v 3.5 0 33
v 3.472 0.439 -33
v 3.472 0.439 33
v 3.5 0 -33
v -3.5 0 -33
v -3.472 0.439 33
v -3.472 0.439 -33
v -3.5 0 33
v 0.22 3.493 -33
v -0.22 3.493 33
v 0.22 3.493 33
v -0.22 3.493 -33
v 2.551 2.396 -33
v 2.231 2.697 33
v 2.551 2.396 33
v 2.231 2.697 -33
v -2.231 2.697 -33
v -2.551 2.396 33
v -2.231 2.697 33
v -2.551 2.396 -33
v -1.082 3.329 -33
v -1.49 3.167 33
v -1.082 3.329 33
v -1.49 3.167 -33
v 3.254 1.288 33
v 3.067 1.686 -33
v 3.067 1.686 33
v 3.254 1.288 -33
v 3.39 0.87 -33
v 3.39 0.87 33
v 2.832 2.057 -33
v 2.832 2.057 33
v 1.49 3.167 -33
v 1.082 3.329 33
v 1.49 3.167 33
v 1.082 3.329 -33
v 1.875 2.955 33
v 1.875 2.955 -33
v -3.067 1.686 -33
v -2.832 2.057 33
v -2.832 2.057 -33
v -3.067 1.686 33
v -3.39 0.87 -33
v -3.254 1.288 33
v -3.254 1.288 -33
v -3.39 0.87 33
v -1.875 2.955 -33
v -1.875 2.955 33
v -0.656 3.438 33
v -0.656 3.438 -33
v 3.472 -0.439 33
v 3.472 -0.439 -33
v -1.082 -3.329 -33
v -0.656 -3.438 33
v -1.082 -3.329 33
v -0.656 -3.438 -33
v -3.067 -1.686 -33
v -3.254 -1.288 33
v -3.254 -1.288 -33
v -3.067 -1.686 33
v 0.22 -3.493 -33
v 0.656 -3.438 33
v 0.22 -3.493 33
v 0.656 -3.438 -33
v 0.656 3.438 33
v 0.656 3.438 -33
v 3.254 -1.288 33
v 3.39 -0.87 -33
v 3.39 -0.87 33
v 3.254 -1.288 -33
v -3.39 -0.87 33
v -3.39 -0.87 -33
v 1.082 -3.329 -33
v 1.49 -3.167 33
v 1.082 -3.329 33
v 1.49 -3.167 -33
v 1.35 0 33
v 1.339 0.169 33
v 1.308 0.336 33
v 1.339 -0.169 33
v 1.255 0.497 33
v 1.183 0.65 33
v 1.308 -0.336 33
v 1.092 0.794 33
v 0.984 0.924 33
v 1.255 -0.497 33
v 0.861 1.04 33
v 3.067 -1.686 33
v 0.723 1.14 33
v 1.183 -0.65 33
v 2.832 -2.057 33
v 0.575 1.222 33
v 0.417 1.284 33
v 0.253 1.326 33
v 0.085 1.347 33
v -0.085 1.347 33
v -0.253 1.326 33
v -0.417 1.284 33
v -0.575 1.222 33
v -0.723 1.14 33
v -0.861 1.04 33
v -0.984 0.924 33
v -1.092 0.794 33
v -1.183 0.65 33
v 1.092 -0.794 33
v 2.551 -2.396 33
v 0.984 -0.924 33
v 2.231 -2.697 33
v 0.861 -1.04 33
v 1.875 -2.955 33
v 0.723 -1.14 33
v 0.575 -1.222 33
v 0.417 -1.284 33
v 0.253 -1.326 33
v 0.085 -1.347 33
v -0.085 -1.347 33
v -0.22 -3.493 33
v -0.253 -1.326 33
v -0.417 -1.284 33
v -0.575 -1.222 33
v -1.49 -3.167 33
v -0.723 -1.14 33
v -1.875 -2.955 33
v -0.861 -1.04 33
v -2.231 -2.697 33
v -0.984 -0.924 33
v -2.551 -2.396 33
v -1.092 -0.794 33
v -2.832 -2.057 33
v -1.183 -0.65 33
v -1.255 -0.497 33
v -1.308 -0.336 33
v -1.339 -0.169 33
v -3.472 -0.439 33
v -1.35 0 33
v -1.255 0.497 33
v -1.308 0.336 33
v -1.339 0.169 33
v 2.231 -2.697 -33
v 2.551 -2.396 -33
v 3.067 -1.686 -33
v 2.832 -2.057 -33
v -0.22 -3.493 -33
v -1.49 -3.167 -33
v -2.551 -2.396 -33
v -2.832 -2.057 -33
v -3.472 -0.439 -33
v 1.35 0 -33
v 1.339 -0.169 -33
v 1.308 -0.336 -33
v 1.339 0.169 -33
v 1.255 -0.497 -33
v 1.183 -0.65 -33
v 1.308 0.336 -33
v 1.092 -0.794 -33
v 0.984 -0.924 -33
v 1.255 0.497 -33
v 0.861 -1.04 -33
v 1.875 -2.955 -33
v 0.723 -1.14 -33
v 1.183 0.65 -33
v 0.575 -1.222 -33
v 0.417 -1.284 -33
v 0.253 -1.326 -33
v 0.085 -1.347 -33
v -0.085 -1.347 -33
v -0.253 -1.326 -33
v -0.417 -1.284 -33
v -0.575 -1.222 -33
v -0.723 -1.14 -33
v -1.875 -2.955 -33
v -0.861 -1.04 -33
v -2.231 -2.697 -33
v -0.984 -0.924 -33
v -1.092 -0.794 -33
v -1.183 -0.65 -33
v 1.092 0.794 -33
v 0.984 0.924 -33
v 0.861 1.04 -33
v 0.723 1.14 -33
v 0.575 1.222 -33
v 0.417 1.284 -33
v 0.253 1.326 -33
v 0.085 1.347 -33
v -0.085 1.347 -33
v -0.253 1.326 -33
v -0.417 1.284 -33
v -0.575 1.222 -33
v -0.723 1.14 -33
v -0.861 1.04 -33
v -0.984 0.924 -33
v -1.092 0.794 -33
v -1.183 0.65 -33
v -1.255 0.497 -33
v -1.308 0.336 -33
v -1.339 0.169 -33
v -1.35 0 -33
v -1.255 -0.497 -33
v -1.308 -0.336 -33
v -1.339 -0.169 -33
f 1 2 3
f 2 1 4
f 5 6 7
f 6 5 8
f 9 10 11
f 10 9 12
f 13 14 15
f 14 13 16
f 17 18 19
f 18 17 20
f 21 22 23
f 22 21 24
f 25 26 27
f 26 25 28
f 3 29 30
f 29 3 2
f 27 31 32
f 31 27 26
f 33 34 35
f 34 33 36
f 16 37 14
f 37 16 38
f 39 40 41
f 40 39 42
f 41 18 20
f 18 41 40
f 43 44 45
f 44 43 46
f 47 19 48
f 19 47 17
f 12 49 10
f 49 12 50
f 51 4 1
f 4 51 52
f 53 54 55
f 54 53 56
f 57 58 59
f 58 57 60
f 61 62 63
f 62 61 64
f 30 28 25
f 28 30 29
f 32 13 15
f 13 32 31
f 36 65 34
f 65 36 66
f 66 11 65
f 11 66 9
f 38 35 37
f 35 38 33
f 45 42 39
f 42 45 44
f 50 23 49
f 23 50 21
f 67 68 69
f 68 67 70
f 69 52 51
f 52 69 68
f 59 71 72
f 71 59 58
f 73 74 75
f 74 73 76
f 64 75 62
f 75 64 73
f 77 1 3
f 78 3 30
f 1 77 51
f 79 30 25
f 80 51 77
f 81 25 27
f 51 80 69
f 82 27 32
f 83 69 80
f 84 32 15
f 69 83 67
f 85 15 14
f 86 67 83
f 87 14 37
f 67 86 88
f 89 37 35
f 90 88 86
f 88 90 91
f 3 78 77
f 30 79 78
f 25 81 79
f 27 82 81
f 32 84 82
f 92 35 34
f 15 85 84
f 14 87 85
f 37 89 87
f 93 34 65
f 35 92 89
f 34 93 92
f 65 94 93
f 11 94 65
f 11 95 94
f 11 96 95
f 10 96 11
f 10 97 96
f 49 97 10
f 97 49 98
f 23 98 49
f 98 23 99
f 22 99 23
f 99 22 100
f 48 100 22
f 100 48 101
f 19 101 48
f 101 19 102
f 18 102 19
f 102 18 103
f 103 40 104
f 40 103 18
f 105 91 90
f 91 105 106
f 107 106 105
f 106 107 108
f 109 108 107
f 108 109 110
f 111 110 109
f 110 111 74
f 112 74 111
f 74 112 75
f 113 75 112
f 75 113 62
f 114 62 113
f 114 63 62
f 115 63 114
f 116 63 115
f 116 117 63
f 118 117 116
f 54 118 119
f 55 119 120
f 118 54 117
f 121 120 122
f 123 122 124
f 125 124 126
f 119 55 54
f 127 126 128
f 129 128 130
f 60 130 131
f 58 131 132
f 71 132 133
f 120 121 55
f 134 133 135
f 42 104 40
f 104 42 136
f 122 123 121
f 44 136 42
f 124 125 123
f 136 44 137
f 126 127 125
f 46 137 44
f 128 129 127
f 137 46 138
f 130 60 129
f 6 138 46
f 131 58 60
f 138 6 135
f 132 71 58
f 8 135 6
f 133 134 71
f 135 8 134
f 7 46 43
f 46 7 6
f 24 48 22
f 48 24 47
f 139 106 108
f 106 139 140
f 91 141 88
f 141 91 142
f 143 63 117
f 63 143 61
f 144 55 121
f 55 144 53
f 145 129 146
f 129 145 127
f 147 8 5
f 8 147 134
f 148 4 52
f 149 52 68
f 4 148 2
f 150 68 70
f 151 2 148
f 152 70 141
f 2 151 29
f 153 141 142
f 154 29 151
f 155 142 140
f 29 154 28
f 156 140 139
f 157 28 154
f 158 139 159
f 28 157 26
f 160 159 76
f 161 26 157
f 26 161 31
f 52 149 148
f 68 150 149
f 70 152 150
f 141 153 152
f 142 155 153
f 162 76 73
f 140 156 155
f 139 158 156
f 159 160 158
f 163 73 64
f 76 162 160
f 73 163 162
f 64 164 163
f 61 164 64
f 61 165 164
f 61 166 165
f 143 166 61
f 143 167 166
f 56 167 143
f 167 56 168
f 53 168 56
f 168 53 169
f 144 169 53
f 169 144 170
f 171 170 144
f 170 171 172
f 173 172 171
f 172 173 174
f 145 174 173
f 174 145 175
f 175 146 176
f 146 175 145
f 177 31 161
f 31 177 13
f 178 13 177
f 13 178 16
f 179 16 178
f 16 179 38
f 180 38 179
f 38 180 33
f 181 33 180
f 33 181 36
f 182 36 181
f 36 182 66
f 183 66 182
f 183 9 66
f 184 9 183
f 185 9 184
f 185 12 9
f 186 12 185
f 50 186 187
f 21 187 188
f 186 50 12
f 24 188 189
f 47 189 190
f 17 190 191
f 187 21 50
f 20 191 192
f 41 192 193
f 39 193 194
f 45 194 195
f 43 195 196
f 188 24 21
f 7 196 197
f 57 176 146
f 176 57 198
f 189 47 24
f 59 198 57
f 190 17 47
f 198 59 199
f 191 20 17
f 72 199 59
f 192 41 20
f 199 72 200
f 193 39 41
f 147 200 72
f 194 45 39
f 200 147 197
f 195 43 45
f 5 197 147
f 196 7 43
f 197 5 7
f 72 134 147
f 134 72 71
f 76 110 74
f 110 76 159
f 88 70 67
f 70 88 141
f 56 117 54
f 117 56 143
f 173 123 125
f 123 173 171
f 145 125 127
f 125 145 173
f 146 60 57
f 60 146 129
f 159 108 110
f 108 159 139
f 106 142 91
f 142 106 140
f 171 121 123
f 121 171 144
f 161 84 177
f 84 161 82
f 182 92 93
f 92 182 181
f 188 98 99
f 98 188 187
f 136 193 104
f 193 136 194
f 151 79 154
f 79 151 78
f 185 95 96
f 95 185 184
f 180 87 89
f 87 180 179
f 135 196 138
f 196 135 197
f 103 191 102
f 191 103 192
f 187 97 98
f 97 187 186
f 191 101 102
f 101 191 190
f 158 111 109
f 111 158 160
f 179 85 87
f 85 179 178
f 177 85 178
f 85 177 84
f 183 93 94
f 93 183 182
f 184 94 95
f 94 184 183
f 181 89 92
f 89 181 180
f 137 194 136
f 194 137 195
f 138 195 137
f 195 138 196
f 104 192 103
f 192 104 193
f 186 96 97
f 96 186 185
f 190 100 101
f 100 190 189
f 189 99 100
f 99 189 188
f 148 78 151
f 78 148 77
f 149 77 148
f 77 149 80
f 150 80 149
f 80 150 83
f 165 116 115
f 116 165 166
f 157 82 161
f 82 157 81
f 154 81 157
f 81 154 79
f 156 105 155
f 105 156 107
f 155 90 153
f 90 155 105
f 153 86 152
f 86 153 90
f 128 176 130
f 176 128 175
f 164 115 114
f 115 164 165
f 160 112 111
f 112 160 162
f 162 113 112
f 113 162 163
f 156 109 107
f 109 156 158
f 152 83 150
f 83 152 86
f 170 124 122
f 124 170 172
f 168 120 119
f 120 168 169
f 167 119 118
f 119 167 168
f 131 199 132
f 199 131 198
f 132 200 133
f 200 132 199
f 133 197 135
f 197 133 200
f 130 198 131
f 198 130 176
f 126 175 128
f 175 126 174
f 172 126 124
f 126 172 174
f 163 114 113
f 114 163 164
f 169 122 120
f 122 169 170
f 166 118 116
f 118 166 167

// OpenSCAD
$fn = 50;


difference() {
	union() {
		translate(v = [0, 0, -33.0000000000]) {
			cylinder(h = 66, r = 3.5000000000);
		}
	}
	union() {
		translate(v = [0, 0, -100.0000000000]) {
			cylinder(h = 200, r = 1.3500000000);
		}
	}
}
